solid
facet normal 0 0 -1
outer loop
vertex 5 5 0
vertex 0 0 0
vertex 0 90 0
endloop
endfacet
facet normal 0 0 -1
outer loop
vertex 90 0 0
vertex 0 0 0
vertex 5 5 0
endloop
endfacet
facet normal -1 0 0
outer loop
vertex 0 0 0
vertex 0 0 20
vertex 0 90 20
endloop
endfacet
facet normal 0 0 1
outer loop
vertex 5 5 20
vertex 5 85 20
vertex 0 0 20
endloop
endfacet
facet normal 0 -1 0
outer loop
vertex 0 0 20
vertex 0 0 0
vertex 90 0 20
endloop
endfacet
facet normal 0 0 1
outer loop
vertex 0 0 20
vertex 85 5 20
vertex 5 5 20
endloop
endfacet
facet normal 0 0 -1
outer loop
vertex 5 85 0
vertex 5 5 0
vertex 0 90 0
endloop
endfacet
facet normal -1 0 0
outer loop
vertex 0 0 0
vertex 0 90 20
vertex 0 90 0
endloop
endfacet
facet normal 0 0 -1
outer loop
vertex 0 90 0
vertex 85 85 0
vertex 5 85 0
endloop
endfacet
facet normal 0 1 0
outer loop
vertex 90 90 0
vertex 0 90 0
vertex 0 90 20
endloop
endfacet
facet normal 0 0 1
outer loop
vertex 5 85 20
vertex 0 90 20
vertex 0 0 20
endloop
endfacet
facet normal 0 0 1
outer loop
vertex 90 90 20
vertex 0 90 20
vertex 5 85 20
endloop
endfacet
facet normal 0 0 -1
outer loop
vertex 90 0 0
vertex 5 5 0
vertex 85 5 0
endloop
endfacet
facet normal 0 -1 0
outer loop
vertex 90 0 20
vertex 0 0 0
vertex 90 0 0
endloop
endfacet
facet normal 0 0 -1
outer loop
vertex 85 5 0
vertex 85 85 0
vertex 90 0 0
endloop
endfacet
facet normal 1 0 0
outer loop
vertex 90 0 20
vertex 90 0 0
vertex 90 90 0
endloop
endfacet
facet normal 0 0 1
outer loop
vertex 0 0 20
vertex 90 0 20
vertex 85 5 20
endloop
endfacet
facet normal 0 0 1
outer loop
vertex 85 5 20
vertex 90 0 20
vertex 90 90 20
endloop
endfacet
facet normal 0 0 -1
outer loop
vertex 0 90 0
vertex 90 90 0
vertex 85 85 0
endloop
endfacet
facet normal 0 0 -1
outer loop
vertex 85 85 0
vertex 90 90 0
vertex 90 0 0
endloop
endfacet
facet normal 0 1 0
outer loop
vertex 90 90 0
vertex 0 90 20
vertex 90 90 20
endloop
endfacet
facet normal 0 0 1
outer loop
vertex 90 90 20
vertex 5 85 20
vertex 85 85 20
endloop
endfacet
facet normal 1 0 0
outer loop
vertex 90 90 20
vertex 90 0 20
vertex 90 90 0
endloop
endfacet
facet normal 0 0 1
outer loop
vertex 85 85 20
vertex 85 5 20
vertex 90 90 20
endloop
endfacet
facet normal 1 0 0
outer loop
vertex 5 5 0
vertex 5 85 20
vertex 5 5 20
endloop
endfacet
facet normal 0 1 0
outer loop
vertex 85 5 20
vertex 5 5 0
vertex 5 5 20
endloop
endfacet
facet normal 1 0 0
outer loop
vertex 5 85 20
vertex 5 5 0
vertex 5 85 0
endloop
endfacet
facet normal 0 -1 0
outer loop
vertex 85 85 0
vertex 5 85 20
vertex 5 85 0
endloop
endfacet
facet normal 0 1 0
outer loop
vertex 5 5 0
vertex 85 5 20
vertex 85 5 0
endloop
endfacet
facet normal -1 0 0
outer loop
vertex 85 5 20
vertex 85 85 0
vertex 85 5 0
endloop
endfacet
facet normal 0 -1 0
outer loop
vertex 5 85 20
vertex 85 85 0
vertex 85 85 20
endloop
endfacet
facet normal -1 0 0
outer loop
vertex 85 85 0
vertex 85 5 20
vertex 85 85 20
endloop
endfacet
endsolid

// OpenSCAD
// Frame for city model
// Outer size: 90.0mm x 90.0mm x 20mm
// Inner size: 80.0mm x 80.0mm x 20mm
// Frame width: 5mm

difference() {
    // Outer block (10mm larger than main model)
    cube([90.0, 90.0, 20]);
    
    // Inner cutout (sized to match main model exactly)
    translate([5, 5, 0])
        cube([80.0, 80.0, 20]);
}
